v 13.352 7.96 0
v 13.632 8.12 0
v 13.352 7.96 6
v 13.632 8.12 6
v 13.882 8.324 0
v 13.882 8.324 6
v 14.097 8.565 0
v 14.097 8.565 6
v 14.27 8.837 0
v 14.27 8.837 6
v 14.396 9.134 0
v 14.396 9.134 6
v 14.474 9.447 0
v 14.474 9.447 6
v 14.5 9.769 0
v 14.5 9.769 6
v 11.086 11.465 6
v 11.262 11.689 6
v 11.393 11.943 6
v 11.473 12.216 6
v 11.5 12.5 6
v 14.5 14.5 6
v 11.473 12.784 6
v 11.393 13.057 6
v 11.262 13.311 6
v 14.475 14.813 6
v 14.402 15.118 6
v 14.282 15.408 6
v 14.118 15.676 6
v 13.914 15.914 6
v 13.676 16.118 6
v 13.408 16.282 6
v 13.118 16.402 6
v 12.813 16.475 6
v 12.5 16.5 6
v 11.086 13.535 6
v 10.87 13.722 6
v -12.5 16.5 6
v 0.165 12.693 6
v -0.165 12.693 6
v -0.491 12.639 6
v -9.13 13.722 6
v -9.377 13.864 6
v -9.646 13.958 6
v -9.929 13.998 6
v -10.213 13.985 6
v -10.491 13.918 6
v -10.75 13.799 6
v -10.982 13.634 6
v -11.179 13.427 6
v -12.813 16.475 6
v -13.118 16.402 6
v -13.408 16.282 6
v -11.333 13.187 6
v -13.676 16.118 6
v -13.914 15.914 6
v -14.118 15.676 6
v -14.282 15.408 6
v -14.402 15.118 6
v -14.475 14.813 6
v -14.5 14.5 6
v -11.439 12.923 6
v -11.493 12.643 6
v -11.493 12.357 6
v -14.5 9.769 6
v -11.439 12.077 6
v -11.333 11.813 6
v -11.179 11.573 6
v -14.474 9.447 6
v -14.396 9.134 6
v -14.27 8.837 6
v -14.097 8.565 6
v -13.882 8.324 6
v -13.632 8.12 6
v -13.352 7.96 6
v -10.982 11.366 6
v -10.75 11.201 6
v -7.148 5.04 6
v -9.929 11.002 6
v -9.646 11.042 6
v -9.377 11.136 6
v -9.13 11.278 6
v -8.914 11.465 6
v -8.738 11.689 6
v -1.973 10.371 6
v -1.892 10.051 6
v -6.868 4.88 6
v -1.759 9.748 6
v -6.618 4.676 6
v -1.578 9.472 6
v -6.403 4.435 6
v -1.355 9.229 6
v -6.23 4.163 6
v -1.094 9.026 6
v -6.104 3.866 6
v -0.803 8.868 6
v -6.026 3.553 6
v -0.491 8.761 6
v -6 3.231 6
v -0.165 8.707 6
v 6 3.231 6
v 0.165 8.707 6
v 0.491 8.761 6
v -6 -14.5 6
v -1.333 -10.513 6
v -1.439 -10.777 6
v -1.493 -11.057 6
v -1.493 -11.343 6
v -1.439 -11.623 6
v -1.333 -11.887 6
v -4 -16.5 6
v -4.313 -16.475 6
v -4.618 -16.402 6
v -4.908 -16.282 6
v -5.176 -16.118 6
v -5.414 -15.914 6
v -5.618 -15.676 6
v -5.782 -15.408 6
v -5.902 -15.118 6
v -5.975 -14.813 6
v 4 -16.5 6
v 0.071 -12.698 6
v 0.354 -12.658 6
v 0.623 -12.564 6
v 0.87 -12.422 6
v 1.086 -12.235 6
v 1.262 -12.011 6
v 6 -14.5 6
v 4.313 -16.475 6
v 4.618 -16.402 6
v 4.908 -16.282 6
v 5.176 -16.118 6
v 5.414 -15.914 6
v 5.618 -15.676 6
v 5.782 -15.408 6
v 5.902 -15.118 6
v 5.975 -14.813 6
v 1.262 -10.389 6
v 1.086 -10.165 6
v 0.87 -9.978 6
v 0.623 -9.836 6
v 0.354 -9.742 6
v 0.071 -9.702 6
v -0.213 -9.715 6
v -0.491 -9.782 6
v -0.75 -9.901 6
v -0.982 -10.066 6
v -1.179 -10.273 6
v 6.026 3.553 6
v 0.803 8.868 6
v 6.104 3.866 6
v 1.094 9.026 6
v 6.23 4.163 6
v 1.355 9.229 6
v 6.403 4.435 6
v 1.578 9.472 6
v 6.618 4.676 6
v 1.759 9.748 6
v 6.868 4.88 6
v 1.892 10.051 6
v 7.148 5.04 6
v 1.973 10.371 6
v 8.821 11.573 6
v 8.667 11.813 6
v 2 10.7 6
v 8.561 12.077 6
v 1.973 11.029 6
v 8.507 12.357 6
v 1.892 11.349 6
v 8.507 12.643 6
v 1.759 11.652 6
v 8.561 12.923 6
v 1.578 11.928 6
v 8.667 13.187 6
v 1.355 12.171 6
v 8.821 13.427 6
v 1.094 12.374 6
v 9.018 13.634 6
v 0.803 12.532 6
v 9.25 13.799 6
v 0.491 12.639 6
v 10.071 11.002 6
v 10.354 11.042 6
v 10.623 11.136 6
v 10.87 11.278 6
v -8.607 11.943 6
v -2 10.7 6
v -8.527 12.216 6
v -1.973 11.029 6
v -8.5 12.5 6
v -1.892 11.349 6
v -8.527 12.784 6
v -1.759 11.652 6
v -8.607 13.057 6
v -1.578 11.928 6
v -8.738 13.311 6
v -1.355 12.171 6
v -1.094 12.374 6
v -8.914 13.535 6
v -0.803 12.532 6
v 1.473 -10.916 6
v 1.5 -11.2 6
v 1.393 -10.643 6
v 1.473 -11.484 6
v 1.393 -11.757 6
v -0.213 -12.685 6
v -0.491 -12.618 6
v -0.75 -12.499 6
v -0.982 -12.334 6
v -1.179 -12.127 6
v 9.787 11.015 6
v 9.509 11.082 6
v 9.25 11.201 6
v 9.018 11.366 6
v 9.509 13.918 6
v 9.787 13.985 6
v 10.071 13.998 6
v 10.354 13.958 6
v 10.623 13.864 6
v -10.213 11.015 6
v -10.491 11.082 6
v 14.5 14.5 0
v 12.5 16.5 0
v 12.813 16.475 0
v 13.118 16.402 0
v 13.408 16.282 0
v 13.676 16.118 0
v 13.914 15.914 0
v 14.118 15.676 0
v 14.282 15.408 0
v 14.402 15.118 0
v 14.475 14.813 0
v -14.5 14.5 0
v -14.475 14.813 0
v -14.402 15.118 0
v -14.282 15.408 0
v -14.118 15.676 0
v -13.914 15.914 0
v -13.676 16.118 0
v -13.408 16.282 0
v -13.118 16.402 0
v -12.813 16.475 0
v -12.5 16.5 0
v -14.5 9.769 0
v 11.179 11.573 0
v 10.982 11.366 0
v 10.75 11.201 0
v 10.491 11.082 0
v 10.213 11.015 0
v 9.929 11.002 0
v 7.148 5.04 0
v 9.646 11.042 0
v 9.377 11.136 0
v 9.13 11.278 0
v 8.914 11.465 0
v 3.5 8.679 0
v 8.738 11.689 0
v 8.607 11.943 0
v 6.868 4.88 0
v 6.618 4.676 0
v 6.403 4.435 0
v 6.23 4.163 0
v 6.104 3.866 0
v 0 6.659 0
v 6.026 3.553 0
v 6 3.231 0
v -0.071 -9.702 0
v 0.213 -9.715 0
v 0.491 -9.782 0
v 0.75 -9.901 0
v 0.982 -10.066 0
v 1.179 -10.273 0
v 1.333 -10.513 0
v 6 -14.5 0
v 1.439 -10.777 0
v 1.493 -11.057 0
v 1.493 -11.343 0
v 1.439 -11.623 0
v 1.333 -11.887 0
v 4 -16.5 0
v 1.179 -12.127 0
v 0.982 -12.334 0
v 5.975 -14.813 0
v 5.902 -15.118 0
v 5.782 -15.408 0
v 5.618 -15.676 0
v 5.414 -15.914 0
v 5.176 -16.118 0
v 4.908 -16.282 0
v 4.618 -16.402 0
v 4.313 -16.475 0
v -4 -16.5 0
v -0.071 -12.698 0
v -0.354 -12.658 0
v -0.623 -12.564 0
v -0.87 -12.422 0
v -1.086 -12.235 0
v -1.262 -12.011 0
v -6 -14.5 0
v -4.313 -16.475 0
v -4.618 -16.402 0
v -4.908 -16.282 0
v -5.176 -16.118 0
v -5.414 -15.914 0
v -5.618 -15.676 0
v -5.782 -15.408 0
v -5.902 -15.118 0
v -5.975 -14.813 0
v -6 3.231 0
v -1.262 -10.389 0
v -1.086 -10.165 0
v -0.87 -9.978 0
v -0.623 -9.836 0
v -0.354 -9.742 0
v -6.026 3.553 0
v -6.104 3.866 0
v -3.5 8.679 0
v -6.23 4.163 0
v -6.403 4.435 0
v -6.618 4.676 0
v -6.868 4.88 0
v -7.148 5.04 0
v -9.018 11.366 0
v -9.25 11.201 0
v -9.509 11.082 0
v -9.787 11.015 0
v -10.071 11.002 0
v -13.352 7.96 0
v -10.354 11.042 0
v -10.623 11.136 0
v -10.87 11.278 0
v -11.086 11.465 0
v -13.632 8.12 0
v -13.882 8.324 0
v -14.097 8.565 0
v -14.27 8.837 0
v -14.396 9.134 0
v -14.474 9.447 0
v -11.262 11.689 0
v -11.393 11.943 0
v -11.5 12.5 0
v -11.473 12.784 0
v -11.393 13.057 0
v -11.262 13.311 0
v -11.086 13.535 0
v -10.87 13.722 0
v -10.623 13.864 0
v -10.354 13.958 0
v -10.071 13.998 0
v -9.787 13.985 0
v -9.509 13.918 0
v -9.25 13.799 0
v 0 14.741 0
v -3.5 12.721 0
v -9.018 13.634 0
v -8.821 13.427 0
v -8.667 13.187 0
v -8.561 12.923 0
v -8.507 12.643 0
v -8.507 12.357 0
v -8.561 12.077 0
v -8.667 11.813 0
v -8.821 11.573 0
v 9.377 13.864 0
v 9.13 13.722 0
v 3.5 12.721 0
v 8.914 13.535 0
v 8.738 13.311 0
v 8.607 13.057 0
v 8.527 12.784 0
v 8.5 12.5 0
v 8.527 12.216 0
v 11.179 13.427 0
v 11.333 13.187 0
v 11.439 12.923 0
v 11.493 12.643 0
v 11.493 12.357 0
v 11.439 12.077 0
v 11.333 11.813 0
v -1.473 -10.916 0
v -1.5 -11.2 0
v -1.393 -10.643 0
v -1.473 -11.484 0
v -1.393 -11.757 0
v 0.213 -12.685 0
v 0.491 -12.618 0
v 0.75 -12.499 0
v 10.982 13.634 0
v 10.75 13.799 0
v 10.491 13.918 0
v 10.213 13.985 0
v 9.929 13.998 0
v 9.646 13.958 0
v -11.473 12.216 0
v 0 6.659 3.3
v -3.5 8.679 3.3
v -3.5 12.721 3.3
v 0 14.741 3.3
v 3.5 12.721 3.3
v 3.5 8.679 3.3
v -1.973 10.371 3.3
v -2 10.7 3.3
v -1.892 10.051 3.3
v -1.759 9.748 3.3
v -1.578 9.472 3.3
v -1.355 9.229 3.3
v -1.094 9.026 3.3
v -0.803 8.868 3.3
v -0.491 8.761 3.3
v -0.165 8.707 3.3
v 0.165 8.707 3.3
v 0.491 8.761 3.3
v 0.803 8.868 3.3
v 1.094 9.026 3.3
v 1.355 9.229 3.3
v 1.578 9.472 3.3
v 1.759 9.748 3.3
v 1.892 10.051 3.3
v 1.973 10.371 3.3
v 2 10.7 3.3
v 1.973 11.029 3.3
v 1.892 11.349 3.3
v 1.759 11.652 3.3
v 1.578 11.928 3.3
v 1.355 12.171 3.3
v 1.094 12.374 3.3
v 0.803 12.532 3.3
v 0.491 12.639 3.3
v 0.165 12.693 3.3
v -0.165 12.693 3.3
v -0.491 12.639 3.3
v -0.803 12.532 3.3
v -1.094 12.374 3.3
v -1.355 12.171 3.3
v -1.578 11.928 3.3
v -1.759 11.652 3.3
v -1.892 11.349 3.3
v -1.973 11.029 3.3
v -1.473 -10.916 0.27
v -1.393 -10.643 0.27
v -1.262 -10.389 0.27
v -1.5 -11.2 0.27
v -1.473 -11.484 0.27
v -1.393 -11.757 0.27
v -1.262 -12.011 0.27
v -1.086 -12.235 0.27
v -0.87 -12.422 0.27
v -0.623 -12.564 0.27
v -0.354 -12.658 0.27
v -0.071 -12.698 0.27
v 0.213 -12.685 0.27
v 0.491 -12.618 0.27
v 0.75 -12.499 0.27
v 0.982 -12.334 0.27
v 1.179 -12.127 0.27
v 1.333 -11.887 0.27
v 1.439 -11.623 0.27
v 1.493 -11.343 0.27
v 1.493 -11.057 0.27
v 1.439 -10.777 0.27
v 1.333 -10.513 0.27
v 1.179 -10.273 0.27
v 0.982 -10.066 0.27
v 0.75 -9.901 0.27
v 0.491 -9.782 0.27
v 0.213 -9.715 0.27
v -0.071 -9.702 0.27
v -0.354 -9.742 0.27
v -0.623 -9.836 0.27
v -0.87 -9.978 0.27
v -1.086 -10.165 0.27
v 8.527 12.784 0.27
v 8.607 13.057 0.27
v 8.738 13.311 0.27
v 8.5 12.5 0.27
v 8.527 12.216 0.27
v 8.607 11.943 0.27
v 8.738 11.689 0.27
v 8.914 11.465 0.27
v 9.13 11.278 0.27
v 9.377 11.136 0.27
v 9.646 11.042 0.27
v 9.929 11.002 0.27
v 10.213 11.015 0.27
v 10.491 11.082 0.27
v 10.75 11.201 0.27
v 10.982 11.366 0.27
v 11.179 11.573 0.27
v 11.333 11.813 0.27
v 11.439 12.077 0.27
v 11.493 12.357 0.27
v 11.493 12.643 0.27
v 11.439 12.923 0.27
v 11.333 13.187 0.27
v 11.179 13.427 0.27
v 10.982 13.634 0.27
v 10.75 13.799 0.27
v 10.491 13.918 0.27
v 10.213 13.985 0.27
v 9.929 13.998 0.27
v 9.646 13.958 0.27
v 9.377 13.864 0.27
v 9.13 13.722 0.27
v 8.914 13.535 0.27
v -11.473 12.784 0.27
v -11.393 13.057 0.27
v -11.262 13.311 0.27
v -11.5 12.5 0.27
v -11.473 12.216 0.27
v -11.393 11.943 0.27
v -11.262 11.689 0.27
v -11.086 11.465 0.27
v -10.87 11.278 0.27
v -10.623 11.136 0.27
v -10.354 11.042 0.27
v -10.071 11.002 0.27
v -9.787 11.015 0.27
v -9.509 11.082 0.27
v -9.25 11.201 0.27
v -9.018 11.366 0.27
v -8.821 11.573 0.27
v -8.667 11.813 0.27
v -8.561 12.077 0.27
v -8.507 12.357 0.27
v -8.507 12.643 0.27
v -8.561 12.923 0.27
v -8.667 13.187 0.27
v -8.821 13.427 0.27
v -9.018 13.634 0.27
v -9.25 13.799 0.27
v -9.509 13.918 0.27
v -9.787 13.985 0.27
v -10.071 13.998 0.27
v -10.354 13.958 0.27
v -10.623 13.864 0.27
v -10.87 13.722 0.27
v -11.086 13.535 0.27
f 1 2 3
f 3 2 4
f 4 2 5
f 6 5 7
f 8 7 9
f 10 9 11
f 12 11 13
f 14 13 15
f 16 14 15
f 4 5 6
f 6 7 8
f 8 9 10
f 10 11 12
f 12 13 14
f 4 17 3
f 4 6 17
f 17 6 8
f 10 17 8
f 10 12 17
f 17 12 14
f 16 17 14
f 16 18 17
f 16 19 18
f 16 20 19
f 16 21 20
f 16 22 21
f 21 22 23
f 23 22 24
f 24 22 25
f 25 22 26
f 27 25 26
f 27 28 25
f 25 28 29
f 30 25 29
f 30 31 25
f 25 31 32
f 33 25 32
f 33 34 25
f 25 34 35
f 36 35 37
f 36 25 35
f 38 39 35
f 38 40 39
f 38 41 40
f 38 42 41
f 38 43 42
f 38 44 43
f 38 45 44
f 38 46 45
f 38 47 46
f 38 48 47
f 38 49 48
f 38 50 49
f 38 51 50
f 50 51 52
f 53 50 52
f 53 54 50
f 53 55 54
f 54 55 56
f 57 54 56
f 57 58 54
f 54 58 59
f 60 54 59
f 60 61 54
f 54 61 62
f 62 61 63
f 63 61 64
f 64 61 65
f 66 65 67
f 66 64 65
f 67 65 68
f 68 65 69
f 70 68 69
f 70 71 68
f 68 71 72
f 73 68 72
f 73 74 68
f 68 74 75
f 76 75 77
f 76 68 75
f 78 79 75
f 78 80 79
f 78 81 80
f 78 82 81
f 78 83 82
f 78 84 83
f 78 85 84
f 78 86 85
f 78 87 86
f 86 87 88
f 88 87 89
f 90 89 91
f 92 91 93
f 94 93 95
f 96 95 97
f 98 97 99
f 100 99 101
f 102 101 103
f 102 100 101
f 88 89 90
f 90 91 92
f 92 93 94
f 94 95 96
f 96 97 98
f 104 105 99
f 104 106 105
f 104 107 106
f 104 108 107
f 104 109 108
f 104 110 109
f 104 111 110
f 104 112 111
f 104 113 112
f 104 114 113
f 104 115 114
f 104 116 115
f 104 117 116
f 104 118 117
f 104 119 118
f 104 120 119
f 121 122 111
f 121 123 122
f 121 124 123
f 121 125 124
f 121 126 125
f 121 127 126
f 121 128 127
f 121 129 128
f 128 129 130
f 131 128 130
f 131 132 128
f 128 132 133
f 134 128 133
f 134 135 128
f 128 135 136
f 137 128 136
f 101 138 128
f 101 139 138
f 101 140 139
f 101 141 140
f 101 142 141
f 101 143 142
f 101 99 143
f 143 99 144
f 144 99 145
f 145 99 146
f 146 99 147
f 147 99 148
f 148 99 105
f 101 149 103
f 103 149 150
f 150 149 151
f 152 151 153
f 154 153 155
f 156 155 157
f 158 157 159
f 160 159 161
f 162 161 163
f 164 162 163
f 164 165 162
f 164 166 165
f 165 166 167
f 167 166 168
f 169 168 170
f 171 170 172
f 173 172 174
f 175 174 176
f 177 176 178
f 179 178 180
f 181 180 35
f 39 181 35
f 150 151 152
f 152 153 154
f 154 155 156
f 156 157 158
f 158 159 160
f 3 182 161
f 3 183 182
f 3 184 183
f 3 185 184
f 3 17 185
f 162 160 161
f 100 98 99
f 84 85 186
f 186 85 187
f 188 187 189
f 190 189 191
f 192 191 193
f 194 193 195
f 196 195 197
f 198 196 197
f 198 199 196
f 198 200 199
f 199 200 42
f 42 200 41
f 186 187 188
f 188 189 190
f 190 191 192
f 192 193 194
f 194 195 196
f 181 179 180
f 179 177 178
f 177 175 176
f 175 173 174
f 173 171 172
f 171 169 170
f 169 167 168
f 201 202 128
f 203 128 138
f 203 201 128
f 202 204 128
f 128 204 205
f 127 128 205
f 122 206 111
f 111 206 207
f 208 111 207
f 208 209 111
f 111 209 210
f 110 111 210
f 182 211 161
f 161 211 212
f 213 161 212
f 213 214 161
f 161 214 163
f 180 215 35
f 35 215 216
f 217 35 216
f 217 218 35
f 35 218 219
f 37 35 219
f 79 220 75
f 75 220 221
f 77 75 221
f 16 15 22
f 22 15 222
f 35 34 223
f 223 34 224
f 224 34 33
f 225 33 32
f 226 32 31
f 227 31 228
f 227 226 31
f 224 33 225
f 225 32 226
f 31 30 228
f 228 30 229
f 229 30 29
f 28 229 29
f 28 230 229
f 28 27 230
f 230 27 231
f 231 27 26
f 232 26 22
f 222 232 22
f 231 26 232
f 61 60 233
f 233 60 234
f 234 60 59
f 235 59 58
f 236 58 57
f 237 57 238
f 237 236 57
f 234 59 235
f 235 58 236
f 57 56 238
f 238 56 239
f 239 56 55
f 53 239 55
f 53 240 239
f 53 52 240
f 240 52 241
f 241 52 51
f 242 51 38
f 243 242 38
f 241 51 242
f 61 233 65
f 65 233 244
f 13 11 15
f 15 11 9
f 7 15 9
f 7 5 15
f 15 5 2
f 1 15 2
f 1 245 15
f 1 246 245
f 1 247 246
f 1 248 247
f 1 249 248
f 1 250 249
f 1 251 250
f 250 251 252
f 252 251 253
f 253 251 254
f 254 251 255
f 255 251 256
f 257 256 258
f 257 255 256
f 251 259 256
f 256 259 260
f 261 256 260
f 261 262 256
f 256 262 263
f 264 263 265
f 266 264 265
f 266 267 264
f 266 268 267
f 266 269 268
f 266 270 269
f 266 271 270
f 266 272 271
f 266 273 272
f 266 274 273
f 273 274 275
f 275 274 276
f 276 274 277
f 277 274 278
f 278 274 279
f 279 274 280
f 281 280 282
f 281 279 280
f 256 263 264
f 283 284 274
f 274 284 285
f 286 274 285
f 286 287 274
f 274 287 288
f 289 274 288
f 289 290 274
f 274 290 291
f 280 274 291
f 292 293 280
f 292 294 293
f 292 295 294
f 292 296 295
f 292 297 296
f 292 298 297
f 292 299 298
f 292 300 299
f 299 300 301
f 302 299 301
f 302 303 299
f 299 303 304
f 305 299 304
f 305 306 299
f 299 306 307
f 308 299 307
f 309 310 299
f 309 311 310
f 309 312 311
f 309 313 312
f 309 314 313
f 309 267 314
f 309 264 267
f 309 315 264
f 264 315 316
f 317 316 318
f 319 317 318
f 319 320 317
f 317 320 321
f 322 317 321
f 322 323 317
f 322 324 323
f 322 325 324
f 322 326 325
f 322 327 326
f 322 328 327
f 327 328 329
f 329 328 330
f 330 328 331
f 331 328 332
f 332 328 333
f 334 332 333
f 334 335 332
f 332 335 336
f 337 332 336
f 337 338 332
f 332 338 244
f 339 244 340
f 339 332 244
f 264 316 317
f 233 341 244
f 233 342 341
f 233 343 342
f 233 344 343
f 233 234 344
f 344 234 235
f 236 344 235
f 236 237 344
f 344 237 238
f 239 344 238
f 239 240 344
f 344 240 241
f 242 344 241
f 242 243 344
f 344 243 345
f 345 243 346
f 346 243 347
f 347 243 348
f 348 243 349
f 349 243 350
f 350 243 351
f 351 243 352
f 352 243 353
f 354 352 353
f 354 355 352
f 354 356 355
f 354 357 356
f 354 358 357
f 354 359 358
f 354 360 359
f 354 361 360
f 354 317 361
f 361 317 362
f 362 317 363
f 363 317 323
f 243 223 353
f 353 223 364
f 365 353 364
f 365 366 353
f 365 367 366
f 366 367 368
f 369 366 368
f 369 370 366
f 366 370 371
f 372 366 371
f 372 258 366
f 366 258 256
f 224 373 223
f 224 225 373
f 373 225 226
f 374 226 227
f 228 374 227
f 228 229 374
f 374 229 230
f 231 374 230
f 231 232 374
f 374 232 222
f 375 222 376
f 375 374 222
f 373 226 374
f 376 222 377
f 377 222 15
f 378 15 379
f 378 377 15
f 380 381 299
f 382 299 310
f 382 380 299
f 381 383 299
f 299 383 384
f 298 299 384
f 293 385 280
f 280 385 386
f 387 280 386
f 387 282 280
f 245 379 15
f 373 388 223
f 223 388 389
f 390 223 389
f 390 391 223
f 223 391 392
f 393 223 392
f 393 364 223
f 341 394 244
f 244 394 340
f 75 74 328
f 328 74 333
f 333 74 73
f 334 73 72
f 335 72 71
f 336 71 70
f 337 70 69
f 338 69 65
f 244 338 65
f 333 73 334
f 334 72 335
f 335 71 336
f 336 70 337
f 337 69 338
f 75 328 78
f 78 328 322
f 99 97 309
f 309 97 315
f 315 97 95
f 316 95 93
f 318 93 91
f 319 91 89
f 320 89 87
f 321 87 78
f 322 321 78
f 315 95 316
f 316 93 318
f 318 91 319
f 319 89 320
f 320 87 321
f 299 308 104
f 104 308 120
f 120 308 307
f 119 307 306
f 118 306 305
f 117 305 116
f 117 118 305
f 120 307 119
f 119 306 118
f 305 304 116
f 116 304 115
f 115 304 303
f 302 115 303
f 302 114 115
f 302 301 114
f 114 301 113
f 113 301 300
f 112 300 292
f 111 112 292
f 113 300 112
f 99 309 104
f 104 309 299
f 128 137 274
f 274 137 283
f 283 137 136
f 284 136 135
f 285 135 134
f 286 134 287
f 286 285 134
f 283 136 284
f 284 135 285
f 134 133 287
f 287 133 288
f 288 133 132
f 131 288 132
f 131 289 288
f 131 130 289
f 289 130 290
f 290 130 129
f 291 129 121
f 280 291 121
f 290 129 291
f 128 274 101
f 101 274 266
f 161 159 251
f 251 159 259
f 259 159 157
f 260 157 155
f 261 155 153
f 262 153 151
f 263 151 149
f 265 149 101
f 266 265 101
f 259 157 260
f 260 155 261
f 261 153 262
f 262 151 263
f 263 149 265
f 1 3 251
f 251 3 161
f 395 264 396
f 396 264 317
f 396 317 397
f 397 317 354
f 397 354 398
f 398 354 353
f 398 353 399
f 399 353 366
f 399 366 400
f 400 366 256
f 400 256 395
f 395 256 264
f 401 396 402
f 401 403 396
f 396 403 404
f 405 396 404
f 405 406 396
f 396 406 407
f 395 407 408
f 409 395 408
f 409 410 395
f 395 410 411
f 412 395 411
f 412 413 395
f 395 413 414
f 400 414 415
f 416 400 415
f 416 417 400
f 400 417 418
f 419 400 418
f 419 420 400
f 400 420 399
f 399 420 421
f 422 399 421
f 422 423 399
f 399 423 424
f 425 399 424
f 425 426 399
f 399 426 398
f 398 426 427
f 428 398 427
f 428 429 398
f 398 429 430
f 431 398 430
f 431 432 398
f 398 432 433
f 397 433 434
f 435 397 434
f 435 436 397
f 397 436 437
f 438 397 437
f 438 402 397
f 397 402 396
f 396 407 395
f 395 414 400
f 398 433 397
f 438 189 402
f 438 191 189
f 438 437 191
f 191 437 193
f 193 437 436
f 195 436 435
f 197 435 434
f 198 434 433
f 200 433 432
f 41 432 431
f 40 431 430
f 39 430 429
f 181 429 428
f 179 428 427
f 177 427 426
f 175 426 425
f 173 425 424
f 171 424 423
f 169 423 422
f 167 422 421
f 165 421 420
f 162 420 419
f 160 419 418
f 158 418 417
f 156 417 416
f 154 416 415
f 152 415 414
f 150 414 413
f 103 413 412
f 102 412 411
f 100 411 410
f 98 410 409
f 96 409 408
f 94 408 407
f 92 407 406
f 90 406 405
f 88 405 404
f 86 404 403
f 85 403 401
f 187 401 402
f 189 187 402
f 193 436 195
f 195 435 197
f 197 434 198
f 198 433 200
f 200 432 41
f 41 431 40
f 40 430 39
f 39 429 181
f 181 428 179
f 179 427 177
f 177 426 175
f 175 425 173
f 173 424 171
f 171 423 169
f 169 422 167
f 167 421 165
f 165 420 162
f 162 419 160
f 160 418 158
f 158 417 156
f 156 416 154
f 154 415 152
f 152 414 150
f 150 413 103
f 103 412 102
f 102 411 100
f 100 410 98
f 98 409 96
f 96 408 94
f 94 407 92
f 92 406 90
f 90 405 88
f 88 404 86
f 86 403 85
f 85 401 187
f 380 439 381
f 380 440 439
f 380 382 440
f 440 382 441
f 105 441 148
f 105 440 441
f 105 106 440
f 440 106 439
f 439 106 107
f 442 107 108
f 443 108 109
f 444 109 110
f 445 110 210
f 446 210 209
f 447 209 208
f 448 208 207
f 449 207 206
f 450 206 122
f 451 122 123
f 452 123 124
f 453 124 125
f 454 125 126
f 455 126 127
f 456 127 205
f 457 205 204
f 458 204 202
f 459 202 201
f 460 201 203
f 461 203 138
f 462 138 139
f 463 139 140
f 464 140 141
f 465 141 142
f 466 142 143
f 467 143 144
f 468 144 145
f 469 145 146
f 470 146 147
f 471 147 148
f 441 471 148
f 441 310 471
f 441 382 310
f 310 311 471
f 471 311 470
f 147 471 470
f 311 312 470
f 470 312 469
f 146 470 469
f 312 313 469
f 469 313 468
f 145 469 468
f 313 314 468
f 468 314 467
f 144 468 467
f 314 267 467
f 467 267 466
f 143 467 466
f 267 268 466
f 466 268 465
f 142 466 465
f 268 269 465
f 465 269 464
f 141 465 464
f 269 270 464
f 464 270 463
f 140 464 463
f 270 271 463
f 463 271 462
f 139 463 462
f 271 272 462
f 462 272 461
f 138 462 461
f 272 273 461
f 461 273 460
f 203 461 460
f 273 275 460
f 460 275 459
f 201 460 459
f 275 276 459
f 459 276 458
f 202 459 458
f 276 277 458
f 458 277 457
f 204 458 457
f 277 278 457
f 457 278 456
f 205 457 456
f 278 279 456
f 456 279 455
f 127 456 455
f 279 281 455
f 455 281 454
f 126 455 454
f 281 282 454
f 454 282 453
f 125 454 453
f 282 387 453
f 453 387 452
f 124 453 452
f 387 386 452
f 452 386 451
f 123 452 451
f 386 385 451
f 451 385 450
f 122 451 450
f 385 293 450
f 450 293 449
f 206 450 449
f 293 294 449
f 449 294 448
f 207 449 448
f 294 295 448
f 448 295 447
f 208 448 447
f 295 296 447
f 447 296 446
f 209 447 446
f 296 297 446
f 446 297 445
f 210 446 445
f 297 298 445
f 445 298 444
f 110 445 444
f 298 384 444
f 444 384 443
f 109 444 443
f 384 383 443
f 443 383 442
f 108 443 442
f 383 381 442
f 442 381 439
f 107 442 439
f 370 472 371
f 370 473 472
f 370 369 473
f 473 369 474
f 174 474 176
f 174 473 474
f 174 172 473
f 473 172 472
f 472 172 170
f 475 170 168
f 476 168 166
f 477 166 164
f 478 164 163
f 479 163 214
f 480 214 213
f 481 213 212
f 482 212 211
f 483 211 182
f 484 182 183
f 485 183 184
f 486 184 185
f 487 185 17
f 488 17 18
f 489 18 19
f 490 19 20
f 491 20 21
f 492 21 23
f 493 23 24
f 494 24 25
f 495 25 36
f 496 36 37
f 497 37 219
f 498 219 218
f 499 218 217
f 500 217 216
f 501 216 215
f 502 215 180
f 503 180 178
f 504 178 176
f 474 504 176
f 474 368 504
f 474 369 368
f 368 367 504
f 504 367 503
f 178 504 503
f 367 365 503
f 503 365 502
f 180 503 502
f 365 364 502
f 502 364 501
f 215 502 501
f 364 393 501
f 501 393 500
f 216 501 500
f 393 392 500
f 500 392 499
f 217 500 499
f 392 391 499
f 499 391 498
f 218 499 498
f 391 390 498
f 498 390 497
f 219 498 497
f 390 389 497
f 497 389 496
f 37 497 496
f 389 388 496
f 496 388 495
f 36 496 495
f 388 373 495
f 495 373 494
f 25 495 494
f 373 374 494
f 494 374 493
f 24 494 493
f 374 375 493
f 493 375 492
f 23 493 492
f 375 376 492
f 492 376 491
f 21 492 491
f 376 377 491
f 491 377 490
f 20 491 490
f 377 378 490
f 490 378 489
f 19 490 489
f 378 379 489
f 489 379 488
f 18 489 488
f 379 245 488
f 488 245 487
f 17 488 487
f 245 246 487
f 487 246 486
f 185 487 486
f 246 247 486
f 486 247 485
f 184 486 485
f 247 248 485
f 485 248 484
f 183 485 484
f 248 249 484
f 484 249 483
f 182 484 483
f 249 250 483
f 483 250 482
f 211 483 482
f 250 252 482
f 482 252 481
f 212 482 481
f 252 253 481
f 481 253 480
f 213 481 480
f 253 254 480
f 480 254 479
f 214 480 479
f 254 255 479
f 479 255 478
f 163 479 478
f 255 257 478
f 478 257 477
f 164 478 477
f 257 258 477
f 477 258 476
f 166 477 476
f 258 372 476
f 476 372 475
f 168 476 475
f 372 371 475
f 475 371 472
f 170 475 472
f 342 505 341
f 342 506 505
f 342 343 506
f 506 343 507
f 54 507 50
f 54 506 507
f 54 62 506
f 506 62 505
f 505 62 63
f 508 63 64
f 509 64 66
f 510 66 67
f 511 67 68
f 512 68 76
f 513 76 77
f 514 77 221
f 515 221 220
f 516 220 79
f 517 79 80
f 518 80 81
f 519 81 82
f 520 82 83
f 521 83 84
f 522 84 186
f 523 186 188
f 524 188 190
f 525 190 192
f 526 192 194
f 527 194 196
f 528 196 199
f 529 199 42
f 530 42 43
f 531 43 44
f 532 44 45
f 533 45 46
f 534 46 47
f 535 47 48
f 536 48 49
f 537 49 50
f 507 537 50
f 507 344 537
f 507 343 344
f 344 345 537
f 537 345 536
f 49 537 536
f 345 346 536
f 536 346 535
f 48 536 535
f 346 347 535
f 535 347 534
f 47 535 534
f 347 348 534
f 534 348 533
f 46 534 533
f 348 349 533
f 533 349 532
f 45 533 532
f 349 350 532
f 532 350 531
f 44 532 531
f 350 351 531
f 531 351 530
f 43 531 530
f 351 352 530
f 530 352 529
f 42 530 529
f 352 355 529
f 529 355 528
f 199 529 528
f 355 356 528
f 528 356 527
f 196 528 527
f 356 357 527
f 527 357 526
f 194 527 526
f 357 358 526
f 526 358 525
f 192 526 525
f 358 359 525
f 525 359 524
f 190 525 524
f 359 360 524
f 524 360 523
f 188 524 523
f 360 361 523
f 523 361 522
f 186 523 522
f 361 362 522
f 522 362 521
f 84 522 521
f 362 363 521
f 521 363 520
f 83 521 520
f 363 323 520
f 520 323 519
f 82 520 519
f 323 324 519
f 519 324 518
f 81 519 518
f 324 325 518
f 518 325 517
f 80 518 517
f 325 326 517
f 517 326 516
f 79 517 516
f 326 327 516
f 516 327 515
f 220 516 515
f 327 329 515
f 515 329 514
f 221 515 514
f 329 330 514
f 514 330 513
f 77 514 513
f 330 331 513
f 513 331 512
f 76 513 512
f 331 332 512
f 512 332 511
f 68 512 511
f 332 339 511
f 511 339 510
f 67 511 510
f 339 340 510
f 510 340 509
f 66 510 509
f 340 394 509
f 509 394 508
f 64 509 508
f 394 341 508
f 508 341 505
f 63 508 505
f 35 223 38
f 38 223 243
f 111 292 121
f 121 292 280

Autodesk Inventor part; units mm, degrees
ref_plane "YZ Plane" through (0, 0, 0) normal (1, 0, 0) x (0, 1, 0)
ref_plane "XZ Plane" through (0, 0, 0) normal (0, 1, 0) x (-1, 0, 0)
ref_plane "XY Plane" through (0, 0, 0) normal (0, 0, 1) x (1, 0, 0)
sketch "Skizze1" plane through (0, 0, 0) normal (0, 0, 1) x (1, 0, 0)
  line L0 (-14.5, -16.5) -> (14.5, -16.5)
  line L1 (14.5, -16.5) -> (14.5, 16.5)
  line L2 (14.5, 16.5) -> (-14.5, 16.5)
  line L3 (-14.5, 16.5) -> (-14.5, -16.5)
  point P0 (0, 0)
  point P1 (-14.5, 0)
  point P2 (0, -16.5)
  dimension "d0" = 29
  dimension "d1" = 33
extrude "Extrusion1" add sketch "Skizze1" along normal blind 6
hole "Hole1" at (-10, 12.5, 6) direction (0, 0, -1) diameter 3 end through all
pattern_linear "Rechteckige Anordnung1" count 2 spacing 20 along (1, 0, 0) of "Hole1"
sketch "Skizze2" plane through (0, 0, 6) normal (0, 0, 1) x (1, 0, 0)
  circle A0 centre (-10, 12.5) radius 3 projected
  line L0 (14.5, -16.5) -> (-14.5, -16.5) projected
  line L1 (-14.5, 16.5) -> (14.5, 16.5) projected
  line L2 (0, 16.5) -> (0, -16.5)
  circle A1 centre (10, 12.5) radius 1.5 projected
  point P0 (0, 0)
  point P1 (0, -11.2)
  dimension "d42" = 23.7
hole "Hole2" at (0, -11.2, 6) at (-10, 12.5, 6) direction (0, 0, -1) diameter 3 end through all
sketch "Skizze3" plane through (0, 0, 0) normal (0, 0, -1) x (-1, 0, 0)
  line L0 (14.5, -16.5) -> (-14.5, -16.5) projected
  line L1 (-14.5, 16.5) -> (14.5, 16.5) projected
  line L2 (0, -16.5) -> (0, 16.5)
  point P0 (0, 0)
  point P1 (0, 10.7)
  dimension "d24" = 5.8
hole "Hole3" at (0, 10.7, 0) direction (0, 0, 1) diameter 4 end through all
sketch "Skizze4" plane through (0, 0, 0) normal (0, 0, -1) x (-1, 0, 0)
  circle A0 centre (0, 10.7) radius 2 projected
  line L0 (0, 6.6585) -> (-3.5, 8.6793)
  line L1 (-3.5, 8.6793) -> (-3.5, 12.7207)
  line L2 (-3.5, 12.7207) -> (0, 14.7415)
  line L3 (0, 14.7415) -> (3.5, 12.7207)
  line L4 (3.5, 12.7207) -> (3.5, 8.6793)
  line L5 (3.5, 8.6793) -> (0, 6.6585)
  point P0 (0, 0)
  dimension "d32" = 7
extrude "Extrusion2" cut sketch "Skizze4" against normal blind 3.3
sketch "Skizze5" plane through (0, 0, 6) normal (0, 0, 1) x (1, 0, 0)
  line L0 (-14.5, -16.5) -> (-14.5, 16.5) projected
  line L1 (14.5, -16.5) -> (-14.5, -16.5) projected
  line L2 (-14.5, 16.5) -> (14.5, 16.5) projected
  line L3 (-14.5, 8.5) -> (-6, 4.5)
  line L4 (-6, 4.5) -> (-6, -16.5)
  line L5 (0, 16.5) -> (0, -16.5)
  line L6 (14.5, -16.5) -> (14.5, 16.5)
  line L7 (-14.5, -16.5) -> (14.5, -16.5)
  line L8 (14.5, 8.5) -> (6, 4.5)
  line L9 (6, 4.5) -> (6, -16.5)
  point P0 (0, 0)
  dimension "d36" = 12
  dimension "d37" = 8
  dimension "d38" = 6
extrude "Extrusion3" cut sketch "Skizze5" against normal blind 6 contours L0 L3 L4 L1 | L9 L8 L6 L1
fillet "Rundung1" radius 2 8 edges at (6, 4.5, 3) (6, -16.5, 3) (-6, -16.5, 3) (-6, 4.5, 3) (-14.5, 8.5, 3) (-14.5, 16.5, 3) (14.5, 16.5, 3) (14.5, 8.5, 3)
properties part number "adapterplatte"
